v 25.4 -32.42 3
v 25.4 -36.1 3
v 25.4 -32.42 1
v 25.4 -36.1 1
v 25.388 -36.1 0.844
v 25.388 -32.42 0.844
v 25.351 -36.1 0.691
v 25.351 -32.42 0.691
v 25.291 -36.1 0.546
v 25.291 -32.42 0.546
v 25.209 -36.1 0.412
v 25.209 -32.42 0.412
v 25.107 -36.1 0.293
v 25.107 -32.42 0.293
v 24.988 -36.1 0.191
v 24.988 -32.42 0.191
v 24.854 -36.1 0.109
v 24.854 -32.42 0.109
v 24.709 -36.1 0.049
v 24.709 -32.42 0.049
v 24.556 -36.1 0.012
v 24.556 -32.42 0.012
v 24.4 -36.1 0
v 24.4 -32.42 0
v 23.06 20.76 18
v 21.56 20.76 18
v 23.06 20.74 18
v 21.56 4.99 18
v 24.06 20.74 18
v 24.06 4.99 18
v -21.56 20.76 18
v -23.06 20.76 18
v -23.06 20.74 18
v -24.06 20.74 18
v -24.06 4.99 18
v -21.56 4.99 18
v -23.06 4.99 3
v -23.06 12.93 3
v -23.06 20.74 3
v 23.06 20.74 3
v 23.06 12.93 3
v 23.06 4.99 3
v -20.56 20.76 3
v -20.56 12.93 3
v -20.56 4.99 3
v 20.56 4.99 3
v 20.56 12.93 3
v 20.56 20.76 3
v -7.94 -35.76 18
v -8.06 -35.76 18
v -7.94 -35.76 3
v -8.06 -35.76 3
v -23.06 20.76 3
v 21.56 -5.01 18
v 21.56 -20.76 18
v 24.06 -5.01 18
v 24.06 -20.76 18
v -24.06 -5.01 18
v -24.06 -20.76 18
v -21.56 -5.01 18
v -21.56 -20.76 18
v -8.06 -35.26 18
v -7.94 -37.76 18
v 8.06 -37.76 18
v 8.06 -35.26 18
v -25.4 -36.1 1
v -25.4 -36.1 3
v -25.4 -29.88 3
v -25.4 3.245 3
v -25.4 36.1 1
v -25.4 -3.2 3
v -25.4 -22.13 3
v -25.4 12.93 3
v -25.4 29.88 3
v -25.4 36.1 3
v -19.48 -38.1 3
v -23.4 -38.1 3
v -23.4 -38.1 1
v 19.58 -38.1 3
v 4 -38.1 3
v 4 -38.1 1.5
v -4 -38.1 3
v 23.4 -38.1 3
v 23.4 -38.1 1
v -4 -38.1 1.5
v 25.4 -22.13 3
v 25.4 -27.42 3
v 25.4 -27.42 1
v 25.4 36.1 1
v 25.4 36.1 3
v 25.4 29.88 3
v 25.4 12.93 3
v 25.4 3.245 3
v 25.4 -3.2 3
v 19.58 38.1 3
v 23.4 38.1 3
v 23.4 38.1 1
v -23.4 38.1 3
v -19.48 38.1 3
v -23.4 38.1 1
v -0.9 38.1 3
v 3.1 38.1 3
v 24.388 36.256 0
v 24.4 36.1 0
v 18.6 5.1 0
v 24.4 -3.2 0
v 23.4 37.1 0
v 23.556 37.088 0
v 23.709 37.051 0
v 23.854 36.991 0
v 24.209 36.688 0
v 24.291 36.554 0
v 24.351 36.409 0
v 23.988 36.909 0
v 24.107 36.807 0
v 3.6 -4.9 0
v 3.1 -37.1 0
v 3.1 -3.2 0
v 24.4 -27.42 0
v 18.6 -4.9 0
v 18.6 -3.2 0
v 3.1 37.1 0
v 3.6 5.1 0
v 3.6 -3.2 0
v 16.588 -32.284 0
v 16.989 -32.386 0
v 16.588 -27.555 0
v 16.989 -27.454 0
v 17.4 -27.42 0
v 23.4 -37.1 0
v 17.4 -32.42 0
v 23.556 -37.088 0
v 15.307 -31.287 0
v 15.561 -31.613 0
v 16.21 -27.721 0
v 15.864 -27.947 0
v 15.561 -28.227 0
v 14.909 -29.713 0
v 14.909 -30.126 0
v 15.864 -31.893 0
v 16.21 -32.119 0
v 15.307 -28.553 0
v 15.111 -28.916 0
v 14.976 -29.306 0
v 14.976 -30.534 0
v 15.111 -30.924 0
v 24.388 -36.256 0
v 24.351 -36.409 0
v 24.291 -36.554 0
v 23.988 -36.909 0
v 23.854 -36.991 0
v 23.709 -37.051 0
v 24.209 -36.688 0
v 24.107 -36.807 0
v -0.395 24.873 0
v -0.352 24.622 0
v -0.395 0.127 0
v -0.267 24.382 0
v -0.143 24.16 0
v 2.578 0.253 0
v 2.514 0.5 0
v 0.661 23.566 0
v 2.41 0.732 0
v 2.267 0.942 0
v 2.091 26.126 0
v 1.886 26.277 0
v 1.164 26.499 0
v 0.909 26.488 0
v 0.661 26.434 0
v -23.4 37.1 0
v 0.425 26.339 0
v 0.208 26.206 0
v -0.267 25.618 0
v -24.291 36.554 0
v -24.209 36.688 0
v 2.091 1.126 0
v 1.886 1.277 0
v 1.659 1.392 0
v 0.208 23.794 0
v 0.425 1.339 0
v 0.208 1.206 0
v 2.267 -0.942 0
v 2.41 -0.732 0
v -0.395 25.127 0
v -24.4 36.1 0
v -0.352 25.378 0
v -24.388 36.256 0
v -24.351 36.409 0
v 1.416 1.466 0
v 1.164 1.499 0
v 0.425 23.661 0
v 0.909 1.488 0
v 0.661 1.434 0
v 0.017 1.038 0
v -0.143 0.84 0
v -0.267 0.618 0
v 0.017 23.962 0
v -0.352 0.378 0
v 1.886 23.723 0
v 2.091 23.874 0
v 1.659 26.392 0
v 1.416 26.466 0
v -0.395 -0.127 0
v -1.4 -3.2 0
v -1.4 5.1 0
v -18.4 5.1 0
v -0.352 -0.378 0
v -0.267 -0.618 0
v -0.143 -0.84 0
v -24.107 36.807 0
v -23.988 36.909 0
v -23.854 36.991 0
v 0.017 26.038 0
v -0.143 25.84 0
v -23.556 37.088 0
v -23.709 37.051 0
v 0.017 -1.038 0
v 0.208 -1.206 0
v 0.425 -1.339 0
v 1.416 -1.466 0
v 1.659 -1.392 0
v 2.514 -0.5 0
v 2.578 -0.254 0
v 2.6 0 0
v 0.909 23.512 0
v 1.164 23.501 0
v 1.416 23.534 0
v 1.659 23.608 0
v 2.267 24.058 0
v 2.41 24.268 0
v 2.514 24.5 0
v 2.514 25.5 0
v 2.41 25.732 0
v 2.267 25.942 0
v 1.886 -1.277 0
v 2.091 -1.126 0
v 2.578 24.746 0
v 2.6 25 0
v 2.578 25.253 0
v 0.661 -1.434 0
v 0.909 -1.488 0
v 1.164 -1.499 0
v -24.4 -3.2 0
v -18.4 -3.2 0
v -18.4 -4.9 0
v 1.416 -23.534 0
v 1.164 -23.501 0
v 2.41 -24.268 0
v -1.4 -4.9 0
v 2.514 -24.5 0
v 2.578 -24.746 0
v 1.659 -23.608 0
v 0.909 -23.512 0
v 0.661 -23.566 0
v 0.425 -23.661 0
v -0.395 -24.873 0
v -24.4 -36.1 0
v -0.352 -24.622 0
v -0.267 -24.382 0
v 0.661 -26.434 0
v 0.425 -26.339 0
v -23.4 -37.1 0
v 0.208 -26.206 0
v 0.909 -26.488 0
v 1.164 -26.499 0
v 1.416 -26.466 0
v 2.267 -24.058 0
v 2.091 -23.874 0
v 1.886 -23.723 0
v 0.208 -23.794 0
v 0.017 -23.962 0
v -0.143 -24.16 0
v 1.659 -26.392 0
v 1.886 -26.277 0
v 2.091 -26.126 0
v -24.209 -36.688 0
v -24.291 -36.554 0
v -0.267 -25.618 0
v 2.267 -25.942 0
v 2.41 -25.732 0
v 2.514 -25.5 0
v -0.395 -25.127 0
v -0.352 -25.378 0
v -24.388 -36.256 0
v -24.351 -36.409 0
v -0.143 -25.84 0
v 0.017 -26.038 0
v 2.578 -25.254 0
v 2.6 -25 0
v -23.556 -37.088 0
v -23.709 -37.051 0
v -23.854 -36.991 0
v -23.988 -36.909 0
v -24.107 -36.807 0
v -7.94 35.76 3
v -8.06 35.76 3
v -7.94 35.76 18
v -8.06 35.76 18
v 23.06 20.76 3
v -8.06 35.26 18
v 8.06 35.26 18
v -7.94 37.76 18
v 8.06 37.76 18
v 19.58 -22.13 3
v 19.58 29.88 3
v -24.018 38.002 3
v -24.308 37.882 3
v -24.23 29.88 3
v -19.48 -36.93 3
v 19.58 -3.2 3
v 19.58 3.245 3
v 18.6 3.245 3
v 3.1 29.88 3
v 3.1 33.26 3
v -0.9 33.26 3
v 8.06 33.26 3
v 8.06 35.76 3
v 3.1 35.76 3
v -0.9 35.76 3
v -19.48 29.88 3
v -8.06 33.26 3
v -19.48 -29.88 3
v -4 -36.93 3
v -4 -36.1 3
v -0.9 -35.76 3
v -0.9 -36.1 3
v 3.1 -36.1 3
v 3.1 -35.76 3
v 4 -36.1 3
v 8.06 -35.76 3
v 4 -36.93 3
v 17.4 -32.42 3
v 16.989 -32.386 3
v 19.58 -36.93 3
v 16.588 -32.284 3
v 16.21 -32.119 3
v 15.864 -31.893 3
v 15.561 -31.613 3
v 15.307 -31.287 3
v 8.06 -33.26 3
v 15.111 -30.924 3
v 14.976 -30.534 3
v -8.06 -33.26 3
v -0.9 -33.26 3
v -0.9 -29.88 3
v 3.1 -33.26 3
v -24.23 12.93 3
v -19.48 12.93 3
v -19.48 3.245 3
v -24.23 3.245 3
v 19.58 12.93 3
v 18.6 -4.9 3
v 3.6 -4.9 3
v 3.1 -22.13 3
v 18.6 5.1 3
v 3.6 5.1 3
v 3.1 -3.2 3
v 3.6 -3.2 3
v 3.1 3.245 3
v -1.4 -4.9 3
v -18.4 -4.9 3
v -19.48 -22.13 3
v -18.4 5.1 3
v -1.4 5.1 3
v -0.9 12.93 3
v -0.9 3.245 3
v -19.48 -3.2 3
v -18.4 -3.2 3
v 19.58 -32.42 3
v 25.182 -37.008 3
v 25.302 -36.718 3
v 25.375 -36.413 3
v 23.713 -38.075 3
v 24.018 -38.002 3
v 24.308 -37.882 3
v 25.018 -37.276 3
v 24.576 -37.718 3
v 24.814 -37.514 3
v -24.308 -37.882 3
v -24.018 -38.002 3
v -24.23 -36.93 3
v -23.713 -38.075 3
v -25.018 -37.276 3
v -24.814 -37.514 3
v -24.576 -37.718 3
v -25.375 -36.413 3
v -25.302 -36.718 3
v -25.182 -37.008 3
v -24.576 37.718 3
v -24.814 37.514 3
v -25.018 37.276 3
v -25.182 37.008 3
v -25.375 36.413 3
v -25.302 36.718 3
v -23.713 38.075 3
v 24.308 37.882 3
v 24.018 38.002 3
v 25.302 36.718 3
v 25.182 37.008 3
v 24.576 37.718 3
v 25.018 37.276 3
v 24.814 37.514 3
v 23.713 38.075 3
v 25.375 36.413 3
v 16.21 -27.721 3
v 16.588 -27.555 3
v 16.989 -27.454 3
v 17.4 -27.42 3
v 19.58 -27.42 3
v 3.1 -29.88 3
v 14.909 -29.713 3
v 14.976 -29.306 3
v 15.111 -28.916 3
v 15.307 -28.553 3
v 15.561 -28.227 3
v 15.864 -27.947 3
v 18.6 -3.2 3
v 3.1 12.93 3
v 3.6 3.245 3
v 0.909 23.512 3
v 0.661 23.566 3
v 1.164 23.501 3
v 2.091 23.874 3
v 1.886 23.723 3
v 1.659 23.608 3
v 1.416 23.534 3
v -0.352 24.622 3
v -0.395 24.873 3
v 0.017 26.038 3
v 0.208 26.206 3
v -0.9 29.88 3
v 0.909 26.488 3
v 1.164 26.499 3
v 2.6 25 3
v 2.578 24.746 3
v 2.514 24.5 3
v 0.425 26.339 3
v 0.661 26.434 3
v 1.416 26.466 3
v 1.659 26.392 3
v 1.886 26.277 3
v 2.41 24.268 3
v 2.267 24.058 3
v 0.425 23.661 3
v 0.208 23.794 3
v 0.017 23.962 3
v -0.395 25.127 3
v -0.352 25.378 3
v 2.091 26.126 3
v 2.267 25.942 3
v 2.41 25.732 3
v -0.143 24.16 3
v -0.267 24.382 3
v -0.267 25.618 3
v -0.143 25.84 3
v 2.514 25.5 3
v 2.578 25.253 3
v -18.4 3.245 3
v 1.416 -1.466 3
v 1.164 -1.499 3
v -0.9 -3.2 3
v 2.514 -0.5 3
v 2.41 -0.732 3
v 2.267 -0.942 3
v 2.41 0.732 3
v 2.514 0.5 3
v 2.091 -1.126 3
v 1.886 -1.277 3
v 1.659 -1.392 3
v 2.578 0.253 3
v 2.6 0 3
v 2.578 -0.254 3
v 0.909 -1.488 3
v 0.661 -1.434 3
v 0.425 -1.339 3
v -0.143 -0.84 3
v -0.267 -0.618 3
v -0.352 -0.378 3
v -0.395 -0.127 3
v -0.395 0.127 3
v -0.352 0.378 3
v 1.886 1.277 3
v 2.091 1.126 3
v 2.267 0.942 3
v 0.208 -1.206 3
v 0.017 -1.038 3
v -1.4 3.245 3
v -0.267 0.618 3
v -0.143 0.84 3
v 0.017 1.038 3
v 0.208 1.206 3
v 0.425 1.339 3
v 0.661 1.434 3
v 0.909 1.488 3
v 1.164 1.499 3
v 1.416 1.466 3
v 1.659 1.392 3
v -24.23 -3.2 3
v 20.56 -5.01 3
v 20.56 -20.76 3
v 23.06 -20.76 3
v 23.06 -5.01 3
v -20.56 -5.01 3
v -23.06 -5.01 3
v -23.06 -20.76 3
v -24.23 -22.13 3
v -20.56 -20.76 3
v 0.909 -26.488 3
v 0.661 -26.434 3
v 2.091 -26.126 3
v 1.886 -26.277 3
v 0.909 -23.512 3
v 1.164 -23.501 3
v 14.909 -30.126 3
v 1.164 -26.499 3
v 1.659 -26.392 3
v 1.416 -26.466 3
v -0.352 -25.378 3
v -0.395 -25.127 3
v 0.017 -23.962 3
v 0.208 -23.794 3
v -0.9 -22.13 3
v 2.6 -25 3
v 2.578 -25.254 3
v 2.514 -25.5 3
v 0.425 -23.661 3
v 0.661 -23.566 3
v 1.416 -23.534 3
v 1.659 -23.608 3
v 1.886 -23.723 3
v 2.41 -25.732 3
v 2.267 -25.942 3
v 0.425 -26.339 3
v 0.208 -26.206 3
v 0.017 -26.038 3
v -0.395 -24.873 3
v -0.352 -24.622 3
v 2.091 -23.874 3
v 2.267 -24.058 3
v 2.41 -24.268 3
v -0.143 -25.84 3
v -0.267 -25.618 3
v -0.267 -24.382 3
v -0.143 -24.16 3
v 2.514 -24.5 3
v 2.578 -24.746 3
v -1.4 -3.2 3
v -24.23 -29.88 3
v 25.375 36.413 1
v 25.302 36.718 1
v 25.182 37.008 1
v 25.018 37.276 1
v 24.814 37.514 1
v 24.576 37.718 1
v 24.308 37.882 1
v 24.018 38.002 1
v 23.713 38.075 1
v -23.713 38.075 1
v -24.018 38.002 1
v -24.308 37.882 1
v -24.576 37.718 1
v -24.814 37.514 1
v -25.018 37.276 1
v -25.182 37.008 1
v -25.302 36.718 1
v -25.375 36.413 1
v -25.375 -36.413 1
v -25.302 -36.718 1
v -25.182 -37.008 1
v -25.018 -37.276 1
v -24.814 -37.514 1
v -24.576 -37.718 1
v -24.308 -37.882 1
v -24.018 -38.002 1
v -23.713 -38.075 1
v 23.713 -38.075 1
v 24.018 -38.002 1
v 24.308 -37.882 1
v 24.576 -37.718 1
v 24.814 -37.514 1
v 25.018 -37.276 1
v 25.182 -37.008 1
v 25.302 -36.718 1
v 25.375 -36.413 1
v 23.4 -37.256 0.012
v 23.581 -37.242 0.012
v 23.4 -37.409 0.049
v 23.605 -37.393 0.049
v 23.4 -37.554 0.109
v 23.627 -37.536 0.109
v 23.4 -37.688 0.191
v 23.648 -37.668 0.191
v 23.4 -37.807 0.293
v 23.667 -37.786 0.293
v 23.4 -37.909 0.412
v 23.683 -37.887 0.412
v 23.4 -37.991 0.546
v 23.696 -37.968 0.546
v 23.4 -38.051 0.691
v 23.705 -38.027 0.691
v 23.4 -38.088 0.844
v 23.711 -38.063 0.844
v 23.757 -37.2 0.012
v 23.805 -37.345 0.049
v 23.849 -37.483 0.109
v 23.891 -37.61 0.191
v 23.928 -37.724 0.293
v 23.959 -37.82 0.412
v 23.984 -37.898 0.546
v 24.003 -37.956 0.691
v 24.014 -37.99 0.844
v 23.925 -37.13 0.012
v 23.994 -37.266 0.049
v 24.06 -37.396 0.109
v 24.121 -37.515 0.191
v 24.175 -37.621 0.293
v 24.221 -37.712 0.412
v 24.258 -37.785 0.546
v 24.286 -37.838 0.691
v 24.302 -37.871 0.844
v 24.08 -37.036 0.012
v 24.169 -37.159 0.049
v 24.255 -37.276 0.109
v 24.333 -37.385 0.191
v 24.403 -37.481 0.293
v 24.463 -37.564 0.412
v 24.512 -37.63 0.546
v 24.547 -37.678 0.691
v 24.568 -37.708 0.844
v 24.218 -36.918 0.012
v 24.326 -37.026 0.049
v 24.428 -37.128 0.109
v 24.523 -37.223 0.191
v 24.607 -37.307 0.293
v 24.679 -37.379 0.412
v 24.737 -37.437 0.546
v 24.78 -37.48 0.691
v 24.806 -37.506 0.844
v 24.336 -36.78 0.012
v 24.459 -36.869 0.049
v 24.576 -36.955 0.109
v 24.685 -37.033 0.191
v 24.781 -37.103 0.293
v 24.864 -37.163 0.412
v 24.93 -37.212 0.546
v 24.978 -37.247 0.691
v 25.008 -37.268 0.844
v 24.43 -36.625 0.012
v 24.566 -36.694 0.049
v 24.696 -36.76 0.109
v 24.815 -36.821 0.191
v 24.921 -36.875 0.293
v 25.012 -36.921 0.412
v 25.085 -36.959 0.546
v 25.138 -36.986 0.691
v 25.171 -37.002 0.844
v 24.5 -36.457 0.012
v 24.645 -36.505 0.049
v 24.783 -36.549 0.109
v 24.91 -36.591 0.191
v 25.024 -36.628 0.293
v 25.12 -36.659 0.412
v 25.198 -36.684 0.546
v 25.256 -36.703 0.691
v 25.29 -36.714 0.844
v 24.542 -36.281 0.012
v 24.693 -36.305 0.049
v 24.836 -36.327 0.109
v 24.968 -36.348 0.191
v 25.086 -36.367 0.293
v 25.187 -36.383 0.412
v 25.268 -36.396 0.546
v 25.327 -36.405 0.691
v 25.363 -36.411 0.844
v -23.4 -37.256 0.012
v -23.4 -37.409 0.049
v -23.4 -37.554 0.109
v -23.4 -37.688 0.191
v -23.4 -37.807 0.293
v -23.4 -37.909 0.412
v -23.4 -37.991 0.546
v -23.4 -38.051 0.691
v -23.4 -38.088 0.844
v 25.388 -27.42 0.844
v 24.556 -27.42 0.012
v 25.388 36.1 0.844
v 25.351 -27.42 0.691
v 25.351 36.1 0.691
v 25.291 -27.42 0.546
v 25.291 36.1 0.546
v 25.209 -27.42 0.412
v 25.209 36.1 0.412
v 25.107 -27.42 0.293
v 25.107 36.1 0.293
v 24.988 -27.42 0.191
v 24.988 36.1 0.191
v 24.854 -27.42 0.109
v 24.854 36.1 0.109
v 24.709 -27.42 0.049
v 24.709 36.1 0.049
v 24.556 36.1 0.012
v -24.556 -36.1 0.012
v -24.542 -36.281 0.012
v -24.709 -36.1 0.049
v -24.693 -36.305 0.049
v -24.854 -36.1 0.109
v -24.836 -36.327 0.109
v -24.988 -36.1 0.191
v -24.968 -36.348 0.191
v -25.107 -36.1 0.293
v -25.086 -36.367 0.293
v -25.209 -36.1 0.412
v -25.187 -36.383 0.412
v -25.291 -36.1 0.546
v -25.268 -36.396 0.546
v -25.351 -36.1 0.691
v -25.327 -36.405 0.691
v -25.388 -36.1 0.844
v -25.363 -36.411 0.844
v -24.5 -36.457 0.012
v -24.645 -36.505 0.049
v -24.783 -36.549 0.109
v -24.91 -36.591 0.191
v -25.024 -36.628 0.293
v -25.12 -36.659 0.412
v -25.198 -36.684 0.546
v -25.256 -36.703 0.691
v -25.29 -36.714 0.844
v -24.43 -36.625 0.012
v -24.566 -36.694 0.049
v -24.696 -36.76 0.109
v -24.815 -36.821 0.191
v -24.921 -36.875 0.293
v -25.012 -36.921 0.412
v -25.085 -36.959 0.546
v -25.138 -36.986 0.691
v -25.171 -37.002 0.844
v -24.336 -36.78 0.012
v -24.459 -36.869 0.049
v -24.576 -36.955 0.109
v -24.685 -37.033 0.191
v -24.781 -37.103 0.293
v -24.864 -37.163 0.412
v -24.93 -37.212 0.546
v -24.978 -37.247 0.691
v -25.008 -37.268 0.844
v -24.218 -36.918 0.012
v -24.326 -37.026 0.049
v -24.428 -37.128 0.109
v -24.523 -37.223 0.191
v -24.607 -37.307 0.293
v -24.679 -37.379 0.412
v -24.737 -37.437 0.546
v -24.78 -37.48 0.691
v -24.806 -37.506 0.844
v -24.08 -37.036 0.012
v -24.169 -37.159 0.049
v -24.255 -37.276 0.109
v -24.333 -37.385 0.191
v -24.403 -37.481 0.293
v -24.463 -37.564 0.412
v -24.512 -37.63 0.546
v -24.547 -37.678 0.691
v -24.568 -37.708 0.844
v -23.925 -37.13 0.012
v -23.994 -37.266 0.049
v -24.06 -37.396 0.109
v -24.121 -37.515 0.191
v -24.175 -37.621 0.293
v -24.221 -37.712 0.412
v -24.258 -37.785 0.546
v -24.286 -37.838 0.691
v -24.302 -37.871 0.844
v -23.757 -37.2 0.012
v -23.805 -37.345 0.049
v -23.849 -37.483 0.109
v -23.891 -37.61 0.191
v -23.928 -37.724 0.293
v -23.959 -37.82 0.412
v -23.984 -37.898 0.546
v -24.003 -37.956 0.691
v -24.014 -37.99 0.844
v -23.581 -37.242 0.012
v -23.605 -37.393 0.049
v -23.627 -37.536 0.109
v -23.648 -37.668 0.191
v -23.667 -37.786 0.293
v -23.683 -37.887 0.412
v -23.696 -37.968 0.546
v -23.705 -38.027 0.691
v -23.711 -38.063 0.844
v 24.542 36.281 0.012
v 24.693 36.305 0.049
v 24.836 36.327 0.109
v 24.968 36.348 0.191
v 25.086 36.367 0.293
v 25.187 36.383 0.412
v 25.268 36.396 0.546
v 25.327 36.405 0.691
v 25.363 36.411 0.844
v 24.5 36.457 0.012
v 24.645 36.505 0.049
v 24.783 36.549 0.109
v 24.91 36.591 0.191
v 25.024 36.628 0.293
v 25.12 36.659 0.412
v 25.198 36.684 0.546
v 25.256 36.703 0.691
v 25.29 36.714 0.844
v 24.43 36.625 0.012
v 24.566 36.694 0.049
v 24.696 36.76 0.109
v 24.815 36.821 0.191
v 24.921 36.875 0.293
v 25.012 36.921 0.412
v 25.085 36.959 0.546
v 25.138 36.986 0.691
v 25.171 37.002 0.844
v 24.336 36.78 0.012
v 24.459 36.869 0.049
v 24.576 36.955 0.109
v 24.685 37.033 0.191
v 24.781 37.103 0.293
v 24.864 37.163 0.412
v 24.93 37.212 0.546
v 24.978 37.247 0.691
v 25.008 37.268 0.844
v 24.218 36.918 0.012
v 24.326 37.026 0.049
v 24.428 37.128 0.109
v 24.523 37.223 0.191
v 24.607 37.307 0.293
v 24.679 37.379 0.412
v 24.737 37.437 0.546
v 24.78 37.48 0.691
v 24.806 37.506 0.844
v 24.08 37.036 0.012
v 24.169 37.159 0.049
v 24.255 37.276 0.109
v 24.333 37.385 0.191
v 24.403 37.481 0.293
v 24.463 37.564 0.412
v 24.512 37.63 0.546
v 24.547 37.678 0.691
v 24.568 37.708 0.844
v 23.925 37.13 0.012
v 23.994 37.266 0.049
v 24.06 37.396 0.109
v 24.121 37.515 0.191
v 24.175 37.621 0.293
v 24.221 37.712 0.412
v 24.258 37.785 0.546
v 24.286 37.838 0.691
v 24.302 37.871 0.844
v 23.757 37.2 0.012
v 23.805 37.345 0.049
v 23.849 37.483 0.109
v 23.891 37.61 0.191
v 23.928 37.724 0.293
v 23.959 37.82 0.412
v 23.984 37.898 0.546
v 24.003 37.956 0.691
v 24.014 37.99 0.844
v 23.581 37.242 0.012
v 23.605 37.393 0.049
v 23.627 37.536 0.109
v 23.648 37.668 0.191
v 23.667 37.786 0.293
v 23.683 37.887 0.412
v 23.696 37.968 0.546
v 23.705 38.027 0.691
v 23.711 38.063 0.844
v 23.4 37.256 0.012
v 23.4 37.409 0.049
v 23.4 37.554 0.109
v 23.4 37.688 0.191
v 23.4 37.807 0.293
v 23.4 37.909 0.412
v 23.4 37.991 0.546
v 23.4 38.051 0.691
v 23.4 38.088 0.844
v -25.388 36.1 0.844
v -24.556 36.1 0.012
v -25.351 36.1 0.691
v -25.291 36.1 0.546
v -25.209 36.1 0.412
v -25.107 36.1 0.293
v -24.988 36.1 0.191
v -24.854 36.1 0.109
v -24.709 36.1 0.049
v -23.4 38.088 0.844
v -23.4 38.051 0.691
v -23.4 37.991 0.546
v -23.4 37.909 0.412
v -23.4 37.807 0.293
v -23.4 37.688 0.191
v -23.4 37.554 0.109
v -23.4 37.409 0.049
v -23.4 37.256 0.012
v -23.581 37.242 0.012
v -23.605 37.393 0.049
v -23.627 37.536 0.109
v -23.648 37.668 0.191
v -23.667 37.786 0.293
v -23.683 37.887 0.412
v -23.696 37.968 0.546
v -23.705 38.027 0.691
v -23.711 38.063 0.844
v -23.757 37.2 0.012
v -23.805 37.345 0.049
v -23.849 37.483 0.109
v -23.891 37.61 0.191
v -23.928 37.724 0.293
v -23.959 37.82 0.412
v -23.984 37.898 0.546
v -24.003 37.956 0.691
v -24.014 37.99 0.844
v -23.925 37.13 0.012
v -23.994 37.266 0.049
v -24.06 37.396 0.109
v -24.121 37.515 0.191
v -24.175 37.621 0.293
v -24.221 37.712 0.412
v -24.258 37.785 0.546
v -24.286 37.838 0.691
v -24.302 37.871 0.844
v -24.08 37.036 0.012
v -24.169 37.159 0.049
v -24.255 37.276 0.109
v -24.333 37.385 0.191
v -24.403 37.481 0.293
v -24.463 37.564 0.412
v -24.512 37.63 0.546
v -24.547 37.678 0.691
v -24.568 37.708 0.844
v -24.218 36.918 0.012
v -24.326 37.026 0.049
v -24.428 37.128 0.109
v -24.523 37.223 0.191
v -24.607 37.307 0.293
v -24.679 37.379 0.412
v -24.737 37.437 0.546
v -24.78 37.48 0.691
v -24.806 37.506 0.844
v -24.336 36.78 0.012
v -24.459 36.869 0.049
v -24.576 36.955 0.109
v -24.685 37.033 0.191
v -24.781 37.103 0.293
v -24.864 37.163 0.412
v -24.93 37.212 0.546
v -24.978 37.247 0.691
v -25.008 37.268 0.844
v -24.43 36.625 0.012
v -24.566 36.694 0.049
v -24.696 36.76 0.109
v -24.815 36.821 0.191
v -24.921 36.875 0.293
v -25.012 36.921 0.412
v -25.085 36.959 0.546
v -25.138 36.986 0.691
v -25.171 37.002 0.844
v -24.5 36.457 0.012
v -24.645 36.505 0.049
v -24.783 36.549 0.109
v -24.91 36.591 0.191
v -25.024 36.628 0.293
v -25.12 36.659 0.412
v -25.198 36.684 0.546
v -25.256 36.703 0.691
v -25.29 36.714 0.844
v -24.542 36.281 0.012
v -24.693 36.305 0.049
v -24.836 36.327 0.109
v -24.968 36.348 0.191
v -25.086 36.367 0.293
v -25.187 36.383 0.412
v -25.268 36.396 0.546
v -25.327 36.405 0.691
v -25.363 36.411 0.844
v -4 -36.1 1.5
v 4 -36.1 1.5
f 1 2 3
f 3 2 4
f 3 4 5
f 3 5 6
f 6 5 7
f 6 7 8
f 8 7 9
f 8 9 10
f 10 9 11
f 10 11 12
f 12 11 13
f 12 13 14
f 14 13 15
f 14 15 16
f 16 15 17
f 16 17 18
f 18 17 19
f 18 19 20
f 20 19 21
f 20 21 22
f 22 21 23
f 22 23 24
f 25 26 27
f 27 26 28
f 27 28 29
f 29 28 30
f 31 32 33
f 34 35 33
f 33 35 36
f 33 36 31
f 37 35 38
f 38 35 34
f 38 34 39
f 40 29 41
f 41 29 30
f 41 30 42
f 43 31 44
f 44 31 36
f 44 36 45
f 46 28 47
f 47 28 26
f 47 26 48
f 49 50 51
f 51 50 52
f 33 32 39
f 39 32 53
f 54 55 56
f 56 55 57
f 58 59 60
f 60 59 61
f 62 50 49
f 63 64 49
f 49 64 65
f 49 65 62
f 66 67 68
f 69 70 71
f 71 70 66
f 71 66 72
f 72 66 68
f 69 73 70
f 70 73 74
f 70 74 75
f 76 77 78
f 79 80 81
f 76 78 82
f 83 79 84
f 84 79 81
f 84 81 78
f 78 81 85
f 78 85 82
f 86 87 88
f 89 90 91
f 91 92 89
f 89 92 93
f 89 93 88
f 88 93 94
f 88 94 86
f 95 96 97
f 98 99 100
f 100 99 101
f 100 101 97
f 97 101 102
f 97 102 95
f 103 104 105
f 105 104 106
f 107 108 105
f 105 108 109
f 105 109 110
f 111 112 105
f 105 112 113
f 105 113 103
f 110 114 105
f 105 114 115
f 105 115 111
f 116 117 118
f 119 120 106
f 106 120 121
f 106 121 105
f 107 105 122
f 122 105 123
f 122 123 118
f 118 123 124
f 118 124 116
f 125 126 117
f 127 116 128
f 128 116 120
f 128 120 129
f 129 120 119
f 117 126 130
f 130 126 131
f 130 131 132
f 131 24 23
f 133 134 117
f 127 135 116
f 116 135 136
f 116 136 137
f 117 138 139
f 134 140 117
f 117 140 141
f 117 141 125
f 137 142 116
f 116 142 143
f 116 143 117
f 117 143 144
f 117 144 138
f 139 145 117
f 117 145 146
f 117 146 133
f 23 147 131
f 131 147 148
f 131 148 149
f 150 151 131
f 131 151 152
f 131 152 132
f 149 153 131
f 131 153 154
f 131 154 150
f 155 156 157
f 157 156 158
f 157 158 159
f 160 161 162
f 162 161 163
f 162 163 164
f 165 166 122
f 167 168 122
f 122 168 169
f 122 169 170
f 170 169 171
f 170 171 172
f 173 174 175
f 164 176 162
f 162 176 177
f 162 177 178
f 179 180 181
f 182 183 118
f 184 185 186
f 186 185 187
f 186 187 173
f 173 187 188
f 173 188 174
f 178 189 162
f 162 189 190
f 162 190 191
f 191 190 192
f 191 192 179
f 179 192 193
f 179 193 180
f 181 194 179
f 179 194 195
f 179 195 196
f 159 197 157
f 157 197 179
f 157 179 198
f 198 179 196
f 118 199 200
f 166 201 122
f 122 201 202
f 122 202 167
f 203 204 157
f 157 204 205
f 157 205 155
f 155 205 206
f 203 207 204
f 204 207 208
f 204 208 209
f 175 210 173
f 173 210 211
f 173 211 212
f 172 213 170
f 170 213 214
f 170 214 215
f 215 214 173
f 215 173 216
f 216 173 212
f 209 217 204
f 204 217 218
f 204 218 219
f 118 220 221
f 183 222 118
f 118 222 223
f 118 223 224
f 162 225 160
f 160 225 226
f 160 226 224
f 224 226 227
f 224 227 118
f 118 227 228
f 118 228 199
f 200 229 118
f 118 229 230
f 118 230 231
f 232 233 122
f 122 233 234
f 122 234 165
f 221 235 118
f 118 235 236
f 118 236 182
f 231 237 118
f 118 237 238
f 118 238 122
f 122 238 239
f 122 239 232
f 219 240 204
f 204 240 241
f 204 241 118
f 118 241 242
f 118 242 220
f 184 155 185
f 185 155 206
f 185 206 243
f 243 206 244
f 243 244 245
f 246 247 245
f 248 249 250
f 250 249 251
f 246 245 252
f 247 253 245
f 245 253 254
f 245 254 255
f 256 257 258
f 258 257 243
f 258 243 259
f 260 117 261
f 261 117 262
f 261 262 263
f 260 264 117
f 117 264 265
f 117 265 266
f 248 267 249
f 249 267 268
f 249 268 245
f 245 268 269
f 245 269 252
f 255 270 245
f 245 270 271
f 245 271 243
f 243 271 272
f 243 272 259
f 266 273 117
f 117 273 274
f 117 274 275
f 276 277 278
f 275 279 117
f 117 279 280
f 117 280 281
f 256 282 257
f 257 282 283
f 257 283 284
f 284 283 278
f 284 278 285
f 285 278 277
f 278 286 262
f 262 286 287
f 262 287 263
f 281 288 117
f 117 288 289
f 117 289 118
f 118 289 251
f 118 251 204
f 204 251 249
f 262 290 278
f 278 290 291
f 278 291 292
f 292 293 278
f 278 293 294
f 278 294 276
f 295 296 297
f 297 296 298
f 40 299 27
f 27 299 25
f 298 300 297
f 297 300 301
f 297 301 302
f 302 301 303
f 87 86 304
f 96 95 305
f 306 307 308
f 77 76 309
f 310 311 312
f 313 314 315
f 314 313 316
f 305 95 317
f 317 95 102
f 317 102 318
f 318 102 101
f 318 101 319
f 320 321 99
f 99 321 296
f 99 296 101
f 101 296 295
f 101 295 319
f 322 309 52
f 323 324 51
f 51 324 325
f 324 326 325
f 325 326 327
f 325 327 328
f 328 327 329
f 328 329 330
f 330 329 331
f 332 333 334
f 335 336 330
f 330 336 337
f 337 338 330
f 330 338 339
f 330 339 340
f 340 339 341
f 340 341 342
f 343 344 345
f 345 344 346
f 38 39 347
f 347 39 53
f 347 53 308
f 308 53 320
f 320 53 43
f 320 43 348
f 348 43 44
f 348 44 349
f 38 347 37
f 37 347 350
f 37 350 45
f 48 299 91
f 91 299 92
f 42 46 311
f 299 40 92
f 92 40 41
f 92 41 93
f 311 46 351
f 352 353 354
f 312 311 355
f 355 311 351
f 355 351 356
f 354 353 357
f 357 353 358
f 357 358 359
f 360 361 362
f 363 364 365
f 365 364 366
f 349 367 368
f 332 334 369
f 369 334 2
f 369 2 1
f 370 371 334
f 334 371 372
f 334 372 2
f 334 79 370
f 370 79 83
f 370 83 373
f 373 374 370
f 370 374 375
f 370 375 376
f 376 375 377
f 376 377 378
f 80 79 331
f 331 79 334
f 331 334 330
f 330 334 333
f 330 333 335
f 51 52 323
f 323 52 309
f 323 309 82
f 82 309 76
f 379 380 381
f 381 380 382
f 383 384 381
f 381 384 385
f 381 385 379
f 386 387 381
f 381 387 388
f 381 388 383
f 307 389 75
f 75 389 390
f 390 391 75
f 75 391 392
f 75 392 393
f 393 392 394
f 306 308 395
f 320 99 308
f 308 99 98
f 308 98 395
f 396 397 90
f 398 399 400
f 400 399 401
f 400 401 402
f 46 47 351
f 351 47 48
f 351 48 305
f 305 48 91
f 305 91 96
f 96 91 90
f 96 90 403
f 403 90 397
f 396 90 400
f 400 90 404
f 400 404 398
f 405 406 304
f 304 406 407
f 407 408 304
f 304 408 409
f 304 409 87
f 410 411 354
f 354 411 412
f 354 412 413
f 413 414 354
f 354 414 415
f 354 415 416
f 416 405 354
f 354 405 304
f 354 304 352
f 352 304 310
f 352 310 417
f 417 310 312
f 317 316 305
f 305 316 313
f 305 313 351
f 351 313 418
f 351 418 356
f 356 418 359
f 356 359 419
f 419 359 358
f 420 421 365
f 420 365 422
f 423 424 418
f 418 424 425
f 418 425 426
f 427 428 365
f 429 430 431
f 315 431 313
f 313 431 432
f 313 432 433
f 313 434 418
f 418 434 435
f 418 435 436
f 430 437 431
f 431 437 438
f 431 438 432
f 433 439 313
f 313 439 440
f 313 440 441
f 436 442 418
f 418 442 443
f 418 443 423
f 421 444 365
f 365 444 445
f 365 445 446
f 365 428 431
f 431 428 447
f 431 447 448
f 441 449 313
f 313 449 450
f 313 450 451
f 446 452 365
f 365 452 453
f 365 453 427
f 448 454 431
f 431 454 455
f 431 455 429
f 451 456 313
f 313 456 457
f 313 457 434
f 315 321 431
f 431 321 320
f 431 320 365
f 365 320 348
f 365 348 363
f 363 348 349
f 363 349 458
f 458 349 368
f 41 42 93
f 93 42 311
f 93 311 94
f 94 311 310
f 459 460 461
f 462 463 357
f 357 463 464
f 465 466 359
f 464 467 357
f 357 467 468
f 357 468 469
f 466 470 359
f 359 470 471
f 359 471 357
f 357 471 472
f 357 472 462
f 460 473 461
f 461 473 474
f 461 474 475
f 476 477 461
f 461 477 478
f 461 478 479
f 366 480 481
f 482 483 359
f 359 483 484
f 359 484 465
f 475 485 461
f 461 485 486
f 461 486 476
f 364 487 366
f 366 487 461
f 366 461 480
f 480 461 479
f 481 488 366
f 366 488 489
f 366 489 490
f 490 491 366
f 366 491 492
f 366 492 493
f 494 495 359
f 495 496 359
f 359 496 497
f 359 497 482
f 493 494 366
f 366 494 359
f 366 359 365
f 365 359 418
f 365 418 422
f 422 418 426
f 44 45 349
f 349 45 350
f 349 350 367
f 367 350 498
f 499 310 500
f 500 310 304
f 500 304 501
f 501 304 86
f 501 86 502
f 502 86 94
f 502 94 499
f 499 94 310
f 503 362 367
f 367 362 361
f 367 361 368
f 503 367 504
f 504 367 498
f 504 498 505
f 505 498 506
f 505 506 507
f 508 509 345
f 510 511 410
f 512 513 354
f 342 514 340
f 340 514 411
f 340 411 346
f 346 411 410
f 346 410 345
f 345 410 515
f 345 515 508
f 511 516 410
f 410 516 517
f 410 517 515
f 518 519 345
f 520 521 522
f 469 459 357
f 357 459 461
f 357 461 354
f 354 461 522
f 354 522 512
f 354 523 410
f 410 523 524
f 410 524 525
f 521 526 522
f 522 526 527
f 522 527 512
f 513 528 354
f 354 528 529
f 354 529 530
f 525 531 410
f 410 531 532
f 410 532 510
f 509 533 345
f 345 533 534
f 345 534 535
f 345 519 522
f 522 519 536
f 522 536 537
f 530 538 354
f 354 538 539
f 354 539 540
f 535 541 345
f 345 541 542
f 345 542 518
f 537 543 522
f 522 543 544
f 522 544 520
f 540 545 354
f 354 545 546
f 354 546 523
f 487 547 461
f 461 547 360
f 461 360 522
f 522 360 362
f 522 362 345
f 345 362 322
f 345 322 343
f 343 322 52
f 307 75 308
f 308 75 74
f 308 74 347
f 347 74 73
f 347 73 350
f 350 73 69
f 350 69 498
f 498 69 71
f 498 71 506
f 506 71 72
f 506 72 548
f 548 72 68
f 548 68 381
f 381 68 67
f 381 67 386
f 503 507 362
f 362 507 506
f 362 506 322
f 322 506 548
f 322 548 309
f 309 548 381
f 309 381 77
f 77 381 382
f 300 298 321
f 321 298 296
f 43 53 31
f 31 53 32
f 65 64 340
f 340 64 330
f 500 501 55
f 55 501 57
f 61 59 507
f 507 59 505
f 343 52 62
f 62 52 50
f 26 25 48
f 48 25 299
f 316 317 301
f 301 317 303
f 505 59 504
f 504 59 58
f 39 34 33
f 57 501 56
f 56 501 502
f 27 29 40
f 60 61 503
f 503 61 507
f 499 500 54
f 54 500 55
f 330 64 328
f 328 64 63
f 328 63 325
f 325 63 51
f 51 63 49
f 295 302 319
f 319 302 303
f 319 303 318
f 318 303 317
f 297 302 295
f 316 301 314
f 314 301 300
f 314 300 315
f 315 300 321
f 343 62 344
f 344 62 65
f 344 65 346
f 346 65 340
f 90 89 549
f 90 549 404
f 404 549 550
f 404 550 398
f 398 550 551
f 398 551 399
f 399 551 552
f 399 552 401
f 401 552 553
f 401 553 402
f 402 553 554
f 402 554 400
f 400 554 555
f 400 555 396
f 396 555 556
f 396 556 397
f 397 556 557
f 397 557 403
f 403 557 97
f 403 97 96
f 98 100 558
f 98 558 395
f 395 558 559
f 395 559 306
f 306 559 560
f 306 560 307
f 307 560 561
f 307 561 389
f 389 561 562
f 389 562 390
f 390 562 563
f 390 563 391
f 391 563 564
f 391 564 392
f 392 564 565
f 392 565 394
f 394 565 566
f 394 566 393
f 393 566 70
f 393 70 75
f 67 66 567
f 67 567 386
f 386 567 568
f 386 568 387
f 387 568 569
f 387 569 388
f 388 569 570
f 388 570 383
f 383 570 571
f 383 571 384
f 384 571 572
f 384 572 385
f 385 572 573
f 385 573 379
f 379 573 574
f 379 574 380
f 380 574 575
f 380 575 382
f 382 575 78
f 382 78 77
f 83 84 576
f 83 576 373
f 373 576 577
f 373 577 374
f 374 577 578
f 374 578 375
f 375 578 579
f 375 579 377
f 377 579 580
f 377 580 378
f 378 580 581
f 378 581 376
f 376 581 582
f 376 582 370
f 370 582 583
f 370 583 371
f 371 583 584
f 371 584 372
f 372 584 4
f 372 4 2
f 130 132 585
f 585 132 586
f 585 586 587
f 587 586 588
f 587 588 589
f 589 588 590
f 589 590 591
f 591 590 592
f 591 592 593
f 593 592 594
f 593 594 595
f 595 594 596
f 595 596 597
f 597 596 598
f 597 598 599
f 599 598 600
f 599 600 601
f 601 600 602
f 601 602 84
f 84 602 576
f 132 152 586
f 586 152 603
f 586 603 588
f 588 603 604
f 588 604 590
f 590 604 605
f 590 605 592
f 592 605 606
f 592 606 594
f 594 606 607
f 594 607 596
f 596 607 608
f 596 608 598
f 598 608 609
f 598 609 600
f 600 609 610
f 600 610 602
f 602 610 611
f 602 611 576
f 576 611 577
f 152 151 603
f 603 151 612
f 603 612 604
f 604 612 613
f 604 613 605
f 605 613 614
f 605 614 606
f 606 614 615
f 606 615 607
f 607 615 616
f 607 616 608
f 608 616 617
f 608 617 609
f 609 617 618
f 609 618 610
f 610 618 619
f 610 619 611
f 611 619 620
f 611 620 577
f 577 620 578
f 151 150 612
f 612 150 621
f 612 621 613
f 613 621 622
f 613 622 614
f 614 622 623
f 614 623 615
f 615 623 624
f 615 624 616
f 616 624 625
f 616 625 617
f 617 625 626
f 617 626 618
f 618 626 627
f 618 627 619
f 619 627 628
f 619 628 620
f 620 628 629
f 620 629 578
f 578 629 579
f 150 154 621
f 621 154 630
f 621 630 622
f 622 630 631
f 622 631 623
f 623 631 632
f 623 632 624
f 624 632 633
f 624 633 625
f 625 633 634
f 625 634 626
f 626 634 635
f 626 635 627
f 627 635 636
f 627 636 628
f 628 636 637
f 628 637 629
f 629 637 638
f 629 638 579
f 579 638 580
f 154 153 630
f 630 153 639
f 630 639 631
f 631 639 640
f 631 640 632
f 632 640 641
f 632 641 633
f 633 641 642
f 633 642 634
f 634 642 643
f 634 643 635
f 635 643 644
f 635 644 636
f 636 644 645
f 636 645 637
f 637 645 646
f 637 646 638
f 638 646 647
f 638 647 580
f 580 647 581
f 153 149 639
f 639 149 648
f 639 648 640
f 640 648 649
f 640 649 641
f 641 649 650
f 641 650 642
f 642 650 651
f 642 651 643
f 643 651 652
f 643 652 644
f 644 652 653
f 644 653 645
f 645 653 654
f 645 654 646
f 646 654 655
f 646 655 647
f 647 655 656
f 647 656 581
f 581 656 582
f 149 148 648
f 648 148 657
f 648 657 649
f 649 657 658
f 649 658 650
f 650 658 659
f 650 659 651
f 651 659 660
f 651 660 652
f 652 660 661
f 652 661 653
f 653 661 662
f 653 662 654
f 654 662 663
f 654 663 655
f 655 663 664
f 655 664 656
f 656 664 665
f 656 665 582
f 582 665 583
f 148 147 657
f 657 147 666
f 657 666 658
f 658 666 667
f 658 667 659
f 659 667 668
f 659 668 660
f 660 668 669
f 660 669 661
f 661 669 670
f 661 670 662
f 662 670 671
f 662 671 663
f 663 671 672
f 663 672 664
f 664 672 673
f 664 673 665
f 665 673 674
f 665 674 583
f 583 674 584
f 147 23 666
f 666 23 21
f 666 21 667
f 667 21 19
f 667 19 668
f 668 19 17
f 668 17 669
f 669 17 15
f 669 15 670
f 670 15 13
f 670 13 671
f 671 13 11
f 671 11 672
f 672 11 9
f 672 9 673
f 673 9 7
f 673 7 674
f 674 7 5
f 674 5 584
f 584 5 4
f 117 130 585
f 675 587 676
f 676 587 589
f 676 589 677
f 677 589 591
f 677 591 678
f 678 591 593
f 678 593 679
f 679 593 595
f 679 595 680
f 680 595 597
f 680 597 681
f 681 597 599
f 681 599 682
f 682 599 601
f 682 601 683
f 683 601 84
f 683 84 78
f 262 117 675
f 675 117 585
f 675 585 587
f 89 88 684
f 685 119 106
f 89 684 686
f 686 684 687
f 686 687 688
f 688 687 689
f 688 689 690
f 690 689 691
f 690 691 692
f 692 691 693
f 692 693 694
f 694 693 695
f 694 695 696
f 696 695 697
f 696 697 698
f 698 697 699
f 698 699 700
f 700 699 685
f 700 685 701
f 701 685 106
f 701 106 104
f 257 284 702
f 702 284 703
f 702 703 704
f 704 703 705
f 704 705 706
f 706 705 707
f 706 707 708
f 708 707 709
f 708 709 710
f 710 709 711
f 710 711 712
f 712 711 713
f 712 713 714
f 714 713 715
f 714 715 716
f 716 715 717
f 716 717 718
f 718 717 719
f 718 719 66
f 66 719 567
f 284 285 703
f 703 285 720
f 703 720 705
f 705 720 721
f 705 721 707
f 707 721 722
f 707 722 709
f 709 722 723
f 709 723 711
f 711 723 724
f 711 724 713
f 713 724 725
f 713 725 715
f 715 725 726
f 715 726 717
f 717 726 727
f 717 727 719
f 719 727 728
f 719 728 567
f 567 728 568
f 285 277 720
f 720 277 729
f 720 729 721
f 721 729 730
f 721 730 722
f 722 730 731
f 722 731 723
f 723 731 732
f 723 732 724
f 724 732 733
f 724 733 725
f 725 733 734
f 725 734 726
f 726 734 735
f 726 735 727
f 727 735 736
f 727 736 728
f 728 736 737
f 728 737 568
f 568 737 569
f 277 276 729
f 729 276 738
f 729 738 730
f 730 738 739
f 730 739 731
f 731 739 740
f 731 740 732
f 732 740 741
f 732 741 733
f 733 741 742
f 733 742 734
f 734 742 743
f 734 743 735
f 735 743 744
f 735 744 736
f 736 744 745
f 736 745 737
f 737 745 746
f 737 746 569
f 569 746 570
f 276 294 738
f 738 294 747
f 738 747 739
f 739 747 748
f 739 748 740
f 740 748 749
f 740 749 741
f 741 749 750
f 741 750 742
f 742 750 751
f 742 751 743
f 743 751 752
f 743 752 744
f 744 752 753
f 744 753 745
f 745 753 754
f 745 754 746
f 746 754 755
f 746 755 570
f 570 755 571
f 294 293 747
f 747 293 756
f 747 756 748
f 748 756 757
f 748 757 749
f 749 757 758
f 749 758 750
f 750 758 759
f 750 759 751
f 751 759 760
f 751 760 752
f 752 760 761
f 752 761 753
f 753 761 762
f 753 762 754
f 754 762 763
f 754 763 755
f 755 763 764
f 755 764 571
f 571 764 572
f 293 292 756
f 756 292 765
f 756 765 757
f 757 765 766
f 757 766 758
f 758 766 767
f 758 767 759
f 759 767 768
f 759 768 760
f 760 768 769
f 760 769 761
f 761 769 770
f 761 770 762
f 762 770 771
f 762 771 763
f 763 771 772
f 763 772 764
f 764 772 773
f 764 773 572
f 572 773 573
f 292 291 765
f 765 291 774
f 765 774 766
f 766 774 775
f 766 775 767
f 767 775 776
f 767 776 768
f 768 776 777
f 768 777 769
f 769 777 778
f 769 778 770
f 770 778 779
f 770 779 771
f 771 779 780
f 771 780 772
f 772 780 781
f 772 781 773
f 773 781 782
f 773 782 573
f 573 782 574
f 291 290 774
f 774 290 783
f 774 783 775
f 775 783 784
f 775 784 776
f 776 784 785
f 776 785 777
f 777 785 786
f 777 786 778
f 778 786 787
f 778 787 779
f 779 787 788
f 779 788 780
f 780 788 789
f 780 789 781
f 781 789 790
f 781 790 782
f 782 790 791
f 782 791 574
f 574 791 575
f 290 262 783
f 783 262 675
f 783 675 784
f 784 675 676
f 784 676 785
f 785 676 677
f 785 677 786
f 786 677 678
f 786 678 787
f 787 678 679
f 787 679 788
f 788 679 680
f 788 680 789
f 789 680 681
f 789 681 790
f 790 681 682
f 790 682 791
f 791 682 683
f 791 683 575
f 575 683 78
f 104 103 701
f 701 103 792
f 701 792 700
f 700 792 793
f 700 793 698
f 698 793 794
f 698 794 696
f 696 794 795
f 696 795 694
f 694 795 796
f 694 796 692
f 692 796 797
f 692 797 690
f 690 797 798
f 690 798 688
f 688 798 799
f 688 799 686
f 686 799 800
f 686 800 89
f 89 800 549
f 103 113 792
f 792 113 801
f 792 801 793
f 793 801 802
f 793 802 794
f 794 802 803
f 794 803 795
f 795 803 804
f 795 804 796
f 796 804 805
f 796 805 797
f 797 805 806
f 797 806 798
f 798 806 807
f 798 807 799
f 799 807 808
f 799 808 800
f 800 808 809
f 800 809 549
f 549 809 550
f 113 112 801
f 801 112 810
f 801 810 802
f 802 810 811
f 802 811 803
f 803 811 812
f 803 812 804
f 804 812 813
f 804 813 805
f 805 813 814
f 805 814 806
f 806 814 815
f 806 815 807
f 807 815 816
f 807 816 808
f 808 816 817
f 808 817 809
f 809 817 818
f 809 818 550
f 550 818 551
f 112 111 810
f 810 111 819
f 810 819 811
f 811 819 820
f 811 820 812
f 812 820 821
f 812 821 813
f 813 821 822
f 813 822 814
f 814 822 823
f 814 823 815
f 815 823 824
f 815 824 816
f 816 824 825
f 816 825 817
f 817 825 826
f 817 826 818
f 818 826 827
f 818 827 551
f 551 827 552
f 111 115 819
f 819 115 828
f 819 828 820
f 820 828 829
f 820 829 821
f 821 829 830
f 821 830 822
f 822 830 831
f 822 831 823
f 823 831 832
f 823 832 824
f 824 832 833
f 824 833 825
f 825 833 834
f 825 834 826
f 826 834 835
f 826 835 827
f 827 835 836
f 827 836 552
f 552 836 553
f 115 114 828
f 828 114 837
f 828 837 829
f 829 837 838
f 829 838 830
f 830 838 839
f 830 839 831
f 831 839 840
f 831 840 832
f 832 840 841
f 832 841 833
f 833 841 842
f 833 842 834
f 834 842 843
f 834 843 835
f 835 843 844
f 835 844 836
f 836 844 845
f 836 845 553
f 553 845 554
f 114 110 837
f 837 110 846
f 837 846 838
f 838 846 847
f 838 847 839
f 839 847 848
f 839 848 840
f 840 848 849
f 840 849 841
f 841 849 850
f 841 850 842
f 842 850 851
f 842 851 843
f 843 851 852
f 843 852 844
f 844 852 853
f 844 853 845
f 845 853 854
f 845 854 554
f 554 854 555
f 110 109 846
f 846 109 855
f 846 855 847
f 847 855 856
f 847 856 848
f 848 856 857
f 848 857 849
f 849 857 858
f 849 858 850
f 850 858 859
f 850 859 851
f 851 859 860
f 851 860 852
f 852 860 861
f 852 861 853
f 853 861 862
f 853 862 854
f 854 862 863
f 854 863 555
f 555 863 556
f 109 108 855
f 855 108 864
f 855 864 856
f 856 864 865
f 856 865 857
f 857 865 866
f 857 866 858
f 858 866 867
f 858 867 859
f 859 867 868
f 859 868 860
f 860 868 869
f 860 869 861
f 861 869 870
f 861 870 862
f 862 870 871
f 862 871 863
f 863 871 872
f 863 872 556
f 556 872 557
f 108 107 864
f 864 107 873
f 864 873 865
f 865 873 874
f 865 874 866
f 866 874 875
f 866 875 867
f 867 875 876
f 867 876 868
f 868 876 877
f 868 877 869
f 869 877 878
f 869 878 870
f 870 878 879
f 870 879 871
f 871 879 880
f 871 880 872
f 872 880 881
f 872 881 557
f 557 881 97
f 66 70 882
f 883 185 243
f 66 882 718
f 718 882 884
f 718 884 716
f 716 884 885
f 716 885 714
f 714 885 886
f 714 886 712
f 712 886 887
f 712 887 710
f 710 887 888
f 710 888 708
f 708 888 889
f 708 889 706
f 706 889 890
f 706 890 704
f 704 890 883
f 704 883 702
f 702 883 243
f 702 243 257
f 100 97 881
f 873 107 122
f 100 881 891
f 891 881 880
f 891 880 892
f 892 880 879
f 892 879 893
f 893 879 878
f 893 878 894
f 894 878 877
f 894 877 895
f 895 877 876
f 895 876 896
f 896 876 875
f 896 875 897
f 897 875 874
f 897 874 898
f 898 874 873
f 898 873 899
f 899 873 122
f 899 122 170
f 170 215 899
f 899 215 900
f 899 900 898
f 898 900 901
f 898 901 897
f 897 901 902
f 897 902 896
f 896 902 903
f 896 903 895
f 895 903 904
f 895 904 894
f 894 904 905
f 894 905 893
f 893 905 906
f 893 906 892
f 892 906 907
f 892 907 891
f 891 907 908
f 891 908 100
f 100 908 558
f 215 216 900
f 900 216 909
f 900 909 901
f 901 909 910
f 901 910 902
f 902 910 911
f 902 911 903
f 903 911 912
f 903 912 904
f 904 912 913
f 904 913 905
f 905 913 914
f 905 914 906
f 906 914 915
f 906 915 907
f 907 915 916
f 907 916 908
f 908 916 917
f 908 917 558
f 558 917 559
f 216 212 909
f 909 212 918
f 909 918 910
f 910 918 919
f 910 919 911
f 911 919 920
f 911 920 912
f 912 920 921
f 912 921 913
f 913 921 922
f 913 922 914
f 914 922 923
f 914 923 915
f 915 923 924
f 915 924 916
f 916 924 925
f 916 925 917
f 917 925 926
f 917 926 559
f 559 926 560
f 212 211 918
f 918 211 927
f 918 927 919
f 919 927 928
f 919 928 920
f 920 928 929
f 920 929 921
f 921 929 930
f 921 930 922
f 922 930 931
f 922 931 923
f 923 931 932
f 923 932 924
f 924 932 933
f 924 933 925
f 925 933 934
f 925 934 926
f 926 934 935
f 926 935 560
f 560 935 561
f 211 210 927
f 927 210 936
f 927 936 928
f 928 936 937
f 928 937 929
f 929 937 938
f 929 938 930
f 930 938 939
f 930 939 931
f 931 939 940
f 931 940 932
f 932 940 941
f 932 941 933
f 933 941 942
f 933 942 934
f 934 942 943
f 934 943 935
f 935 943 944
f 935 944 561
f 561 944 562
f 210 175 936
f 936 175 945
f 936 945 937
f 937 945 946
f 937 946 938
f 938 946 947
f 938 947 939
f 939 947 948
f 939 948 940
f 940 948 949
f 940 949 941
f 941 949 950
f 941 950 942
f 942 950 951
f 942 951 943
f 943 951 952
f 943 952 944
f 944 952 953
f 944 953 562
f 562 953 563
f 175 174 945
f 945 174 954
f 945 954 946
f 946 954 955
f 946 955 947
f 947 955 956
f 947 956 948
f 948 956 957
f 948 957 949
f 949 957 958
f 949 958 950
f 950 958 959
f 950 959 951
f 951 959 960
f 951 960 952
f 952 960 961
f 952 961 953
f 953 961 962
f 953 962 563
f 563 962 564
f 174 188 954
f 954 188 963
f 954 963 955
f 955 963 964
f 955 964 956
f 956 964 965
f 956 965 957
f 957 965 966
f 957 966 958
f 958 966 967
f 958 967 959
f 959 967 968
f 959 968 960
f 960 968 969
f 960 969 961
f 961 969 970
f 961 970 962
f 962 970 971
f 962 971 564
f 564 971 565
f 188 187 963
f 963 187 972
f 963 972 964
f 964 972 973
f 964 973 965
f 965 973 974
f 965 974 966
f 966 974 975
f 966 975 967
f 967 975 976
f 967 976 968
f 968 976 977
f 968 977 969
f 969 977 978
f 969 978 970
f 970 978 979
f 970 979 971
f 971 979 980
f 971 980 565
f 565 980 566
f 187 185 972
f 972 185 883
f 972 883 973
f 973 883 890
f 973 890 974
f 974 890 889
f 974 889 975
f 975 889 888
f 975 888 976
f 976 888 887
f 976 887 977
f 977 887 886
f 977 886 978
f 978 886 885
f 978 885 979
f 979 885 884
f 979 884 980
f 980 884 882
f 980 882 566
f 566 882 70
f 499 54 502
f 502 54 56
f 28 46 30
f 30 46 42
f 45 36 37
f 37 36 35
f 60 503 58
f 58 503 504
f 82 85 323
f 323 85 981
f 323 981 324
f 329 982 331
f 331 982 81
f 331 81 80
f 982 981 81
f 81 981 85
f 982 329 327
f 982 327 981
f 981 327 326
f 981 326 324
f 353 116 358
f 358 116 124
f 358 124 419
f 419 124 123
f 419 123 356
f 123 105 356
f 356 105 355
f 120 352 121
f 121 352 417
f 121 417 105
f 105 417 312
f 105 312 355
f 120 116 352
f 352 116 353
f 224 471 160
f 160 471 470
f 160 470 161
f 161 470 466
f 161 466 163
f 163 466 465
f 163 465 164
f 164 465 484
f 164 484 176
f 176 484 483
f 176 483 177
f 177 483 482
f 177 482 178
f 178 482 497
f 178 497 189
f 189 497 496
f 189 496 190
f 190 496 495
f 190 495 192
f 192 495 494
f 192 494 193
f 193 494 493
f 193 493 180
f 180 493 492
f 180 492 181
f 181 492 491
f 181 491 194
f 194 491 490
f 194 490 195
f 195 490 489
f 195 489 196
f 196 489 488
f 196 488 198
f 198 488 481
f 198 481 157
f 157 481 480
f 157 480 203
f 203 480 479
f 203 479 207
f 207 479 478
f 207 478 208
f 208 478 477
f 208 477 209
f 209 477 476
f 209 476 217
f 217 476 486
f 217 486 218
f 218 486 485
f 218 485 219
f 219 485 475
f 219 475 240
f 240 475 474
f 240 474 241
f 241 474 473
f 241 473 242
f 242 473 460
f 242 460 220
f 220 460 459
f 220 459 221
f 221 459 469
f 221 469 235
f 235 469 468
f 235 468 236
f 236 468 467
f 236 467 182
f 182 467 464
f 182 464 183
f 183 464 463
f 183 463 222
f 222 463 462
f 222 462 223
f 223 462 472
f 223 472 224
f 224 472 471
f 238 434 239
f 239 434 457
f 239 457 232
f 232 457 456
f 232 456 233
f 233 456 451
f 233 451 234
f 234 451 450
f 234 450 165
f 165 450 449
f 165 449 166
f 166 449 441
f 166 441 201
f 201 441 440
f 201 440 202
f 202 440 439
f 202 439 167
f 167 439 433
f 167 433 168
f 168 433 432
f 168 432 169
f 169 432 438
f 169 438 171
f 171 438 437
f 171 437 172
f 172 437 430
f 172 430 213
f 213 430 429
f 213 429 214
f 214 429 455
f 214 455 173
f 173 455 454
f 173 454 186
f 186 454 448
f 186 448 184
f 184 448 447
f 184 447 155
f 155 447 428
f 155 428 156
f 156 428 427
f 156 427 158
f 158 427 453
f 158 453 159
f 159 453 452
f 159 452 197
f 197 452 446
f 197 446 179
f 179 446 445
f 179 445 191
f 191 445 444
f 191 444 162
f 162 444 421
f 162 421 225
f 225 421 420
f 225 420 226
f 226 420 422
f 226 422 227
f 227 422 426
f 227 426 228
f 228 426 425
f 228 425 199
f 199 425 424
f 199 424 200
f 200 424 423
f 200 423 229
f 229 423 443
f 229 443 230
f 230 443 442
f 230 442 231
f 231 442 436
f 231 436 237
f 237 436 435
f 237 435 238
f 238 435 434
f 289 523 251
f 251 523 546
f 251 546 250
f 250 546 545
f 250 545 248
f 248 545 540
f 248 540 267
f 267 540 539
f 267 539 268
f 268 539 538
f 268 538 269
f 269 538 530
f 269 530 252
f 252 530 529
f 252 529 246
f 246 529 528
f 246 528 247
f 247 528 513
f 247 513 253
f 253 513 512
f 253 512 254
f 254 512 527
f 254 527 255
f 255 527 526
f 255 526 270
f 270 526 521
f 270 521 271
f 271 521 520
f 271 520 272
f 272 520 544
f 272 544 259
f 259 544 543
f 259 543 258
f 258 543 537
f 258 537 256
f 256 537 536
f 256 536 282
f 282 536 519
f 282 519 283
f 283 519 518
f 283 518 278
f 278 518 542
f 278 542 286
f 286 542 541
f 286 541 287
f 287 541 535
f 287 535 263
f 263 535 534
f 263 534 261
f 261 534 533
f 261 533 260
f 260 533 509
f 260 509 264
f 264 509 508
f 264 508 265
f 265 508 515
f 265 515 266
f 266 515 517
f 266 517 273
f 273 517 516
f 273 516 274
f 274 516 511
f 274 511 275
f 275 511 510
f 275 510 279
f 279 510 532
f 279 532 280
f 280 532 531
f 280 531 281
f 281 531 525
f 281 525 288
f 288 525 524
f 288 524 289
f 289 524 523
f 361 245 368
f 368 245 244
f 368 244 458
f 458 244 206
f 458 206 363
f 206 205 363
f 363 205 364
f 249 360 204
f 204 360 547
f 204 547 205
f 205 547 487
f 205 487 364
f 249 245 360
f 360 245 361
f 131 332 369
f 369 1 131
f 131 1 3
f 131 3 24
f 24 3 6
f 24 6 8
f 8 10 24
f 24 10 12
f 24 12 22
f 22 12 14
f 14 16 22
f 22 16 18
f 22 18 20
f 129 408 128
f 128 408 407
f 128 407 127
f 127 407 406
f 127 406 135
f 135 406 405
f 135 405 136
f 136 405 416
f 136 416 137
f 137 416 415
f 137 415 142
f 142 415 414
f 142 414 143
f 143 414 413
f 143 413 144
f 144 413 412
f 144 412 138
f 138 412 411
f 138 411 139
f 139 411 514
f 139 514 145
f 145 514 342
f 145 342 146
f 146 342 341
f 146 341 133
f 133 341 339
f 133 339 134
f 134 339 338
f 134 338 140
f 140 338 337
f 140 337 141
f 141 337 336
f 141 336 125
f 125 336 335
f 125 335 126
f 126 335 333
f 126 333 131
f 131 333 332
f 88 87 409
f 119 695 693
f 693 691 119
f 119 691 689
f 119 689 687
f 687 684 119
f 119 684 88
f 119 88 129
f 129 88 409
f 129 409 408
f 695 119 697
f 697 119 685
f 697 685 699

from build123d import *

# Parameters (mm, degrees)
CROQUIS1_W              = 50.8
CROQUIS1_H              = 76.2
SALIENTE_EXTRUIR1_DEPTH = 18
CROQUIS2_W              = 50.8
CROQUIS2_H              = 76.2
CROQUIS2_W_2            = 46.12
CROQUIS2_H_2            = 71.52
CROQUIS2_W_3            = 38.8
CROQUIS2_H_3            = 64.2
CORTAR_EXTRUIR1_DEPTH   = 15
CORTAR_EXTRUIR8_DEPTH   = 15
SALIENTE_EXTRUIR3_DEPTH = 41.5
CORTAR_EXTRUIR9_DEPTH   = 51.5
CORTAR_EXTRUIR10_DEPTH  = 51.5
SALIENTE_EXTRUIR4_DEPTH = 16
CORTAR_EXTRUIR11_DEPTH  = 16.5
REDONDEO3_R             = 2
REDONDEO4_R             = 1
CROQUIS15_W             = 48.12
CROQUIS15_H             = 10
CORTAR_EXTRUIR12_DEPTH  = 15
CROQUIS16_W             = 8
CROQUIS16_H             = 1.5
CORTAR_EXTRUIR13_DEPTH  = 2
CROQUIS18_R             = 1.5
CROQUIS18_W             = 17
CROQUIS18_H             = 10
CROQUIS18_W_2           = 15
CORTAR_EXTRUIR15_DEPTH  = 3
CORTAR_EXTRUIR16_DEPTH  = 10


with BuildPart() as part:
    # Croquis1 → Saliente-Extruir1 (new body)
    with BuildSketch(Plane.XY):
        Rectangle(CROQUIS1_W, CROQUIS1_H)
    extrude(amount=SALIENTE_EXTRUIR1_DEPTH)

    # Croquis2 → Cortar-Extruir1 (cut)
    # profile 1 of 2: a face of its own
    with BuildSketch(Plane.XY.offset(18)):
        Rectangle(CROQUIS2_W, CROQUIS2_H)
        Rectangle(CROQUIS2_W_2, CROQUIS2_H_2, mode=Mode.SUBTRACT)
    # profile 2 of 2: a face of its own
    with BuildSketch(Plane.XY.offset(18)):
        Rectangle(CROQUIS2_W_3, CROQUIS2_H_3)
    extrude(amount=-CORTAR_EXTRUIR1_DEPTH, mode=Mode.SUBTRACT)

    # Croquis6 → Cortar-Extruir8 (cut)
    with BuildSketch(Plane.XY.offset(18)):
        Polygon((-23.06, 35.76), (-8.06, 35.76), (-8.06, 32.1), (-19.4, 32.1), (-19.4, 20.76), (-23.06, 20.76), align=None)
        Polygon((23.06, 35.76), (8.06, 35.76), (8.06, 32.1), (19.4, 32.1), (19.4, 20.76), (23.06, 20.76), align=None)
        Polygon((-23.06, -35.76), (-23.06, -20.76), (-19.4, -20.76), (-19.4, -32.1), (-8.06, -32.1), (-8.06, -35.76), align=None)
        Polygon((23.06, -35.76), (8.06, -35.76), (8.06, -32.1), (19.4, -32.1), (19.4, -20.76), (23.06, -20.76), align=None)
    extrude(amount=-CORTAR_EXTRUIR8_DEPTH, mode=Mode.SUBTRACT)

    # Croquis10 → Saliente-Extruir3 (add)
    with BuildSketch(Plane(origin=(0, -20.76, 0), x_dir=(-1, 0, 0), z_dir=(0, -1, 0))):
        Polygon((23.06, -18), (24.06, -18), (23.06, -3), align=None)
        Polygon((-23.06, -18), (-24.06, -18), (-23.06, -3), align=None)
    extrude(amount=-SALIENTE_EXTRUIR3_DEPTH)

    # Croquis11 → Cortar-Extruir9 (cut)
    with BuildSketch(Plane.XZ.offset(20.76)):
        Polygon((-19.4, 18), (-21.56, 18), (-20.56, 3), (-19.4, 3), align=None)
    extrude(amount=-CORTAR_EXTRUIR9_DEPTH, mode=Mode.SUBTRACT)

    # Croquis12 → Cortar-Extruir10 (cut)
    with BuildSketch(Plane.XZ.offset(20.76)):
        Polygon((19.4, 18), (19.4, 3), (20.56, 3), (21.56, 18), align=None)
    extrude(amount=-CORTAR_EXTRUIR10_DEPTH, mode=Mode.SUBTRACT)

    # Croquis13 → Saliente-Extruir4 (add)
    with BuildSketch(Plane(origin=(8.06, 0, 0), x_dir=(0, 0, -1), z_dir=(1, 0, 0))):
        Polygon((-18, -35.76), (-18, -37.76), (-3, -35.76), align=None)
        Polygon((-18, 35.76), (-18, 37.76), (-3, 35.76), align=None)
    extrude(amount=-SALIENTE_EXTRUIR4_DEPTH)

    # Croquis14 → Cortar-Extruir11 (cut)
    with BuildSketch(Plane(origin=(8.06, 0, 0), x_dir=(0, 0, -1), z_dir=(1, 0, 0))):
        Polygon((-3, -32.1), (-18, -32.1), (-18, -35.26), (-3, -33.26), align=None)
        Polygon((-18, 32.1), (-18, 35.26), (-3, 33.26), (-3, 32.1), align=None)
    extrude(amount=-CORTAR_EXTRUIR11_DEPTH, mode=Mode.SUBTRACT)

    # Redondeo3
    redondeo3_edges = [part.edges().sort_by_distance(p)[0] for p in [
        (-25.4, 38.1, 1.5),
        (25.4, 38.1, 1.5),
        (25.4, -38.1, 1.5),
        (-25.4, -38.1, 1.5),
    ]]
    fillet(redondeo3_edges, radius=REDONDEO3_R)

    # Redondeo4
    redondeo4_edges = [part.edges().sort_by_distance(p)[0] for p in [
        (0, 38.1, 0),
        (-25.4, 0, 0),
        (25.4, 0, 0),
        (0, -38.1, 0),
        (24.814213562, -37.514213562, 0),
        (-24.814213562, -37.514213562, 0),
        (-24.814213562, 37.514213562, 0),
        (24.814213562, 37.514213562, 0),
    ]]
    fillet(redondeo4_edges, radius=REDONDEO4_R)

    # Croquis15 → Cortar-Extruir12 (cut)
    with BuildSketch(Plane.XY.offset(18)):
        with Locations((0, -0.01)):
            Rectangle(CROQUIS15_W, CROQUIS15_H)
    extrude(amount=-CORTAR_EXTRUIR12_DEPTH, mode=Mode.SUBTRACT)

    # Croquis16 → Cortar-Extruir13 (cut)
    with BuildSketch(Plane.XZ.offset(38.1)):
        with Locations((0, 2.25)):
            Rectangle(CROQUIS16_W, CROQUIS16_H)
    extrude(amount=-CORTAR_EXTRUIR13_DEPTH, mode=Mode.SUBTRACT)

    # Croquis18 → Cortar-Extruir15 (cut)
    with BuildSketch(Plane.XY.offset(3)):
        with Locations((1.1, 0)):
            Circle(CROQUIS18_R)
        with Locations((1.1, 25)):
            Circle(CROQUIS18_R)
        with Locations((1.1, -25)):
            Circle(CROQUIS18_R)
        with Locations((-9.9, 0.1)):
            Rectangle(CROQUIS18_W, CROQUIS18_H)
        with Locations((11.1, 0.1)):
            Rectangle(CROQUIS18_W_2, CROQUIS18_H)
    extrude(amount=-CORTAR_EXTRUIR15_DEPTH, mode=Mode.SUBTRACT)

    # Croquis19 → Cortar-Extruir16 (cut)
    with BuildSketch(Plane.XY.offset(3)):
        with BuildLine():
            Line((25.4, -32.419906808), (17.4, -32.419906808))
            ThreePointArc((17.4, -32.419906808), (14.9, -29.919906808), (17.4, -27.419906808))
            Line((17.4, -27.419906808), (25.4, -27.419906808))
            ThreePointArc((25.4, -27.419906808), (27.9, -29.919906808), (25.4, -32.419906808))
        make_face()
    extrude(amount=-CORTAR_EXTRUIR16_DEPTH, mode=Mode.SUBTRACT)


solid = part.part
